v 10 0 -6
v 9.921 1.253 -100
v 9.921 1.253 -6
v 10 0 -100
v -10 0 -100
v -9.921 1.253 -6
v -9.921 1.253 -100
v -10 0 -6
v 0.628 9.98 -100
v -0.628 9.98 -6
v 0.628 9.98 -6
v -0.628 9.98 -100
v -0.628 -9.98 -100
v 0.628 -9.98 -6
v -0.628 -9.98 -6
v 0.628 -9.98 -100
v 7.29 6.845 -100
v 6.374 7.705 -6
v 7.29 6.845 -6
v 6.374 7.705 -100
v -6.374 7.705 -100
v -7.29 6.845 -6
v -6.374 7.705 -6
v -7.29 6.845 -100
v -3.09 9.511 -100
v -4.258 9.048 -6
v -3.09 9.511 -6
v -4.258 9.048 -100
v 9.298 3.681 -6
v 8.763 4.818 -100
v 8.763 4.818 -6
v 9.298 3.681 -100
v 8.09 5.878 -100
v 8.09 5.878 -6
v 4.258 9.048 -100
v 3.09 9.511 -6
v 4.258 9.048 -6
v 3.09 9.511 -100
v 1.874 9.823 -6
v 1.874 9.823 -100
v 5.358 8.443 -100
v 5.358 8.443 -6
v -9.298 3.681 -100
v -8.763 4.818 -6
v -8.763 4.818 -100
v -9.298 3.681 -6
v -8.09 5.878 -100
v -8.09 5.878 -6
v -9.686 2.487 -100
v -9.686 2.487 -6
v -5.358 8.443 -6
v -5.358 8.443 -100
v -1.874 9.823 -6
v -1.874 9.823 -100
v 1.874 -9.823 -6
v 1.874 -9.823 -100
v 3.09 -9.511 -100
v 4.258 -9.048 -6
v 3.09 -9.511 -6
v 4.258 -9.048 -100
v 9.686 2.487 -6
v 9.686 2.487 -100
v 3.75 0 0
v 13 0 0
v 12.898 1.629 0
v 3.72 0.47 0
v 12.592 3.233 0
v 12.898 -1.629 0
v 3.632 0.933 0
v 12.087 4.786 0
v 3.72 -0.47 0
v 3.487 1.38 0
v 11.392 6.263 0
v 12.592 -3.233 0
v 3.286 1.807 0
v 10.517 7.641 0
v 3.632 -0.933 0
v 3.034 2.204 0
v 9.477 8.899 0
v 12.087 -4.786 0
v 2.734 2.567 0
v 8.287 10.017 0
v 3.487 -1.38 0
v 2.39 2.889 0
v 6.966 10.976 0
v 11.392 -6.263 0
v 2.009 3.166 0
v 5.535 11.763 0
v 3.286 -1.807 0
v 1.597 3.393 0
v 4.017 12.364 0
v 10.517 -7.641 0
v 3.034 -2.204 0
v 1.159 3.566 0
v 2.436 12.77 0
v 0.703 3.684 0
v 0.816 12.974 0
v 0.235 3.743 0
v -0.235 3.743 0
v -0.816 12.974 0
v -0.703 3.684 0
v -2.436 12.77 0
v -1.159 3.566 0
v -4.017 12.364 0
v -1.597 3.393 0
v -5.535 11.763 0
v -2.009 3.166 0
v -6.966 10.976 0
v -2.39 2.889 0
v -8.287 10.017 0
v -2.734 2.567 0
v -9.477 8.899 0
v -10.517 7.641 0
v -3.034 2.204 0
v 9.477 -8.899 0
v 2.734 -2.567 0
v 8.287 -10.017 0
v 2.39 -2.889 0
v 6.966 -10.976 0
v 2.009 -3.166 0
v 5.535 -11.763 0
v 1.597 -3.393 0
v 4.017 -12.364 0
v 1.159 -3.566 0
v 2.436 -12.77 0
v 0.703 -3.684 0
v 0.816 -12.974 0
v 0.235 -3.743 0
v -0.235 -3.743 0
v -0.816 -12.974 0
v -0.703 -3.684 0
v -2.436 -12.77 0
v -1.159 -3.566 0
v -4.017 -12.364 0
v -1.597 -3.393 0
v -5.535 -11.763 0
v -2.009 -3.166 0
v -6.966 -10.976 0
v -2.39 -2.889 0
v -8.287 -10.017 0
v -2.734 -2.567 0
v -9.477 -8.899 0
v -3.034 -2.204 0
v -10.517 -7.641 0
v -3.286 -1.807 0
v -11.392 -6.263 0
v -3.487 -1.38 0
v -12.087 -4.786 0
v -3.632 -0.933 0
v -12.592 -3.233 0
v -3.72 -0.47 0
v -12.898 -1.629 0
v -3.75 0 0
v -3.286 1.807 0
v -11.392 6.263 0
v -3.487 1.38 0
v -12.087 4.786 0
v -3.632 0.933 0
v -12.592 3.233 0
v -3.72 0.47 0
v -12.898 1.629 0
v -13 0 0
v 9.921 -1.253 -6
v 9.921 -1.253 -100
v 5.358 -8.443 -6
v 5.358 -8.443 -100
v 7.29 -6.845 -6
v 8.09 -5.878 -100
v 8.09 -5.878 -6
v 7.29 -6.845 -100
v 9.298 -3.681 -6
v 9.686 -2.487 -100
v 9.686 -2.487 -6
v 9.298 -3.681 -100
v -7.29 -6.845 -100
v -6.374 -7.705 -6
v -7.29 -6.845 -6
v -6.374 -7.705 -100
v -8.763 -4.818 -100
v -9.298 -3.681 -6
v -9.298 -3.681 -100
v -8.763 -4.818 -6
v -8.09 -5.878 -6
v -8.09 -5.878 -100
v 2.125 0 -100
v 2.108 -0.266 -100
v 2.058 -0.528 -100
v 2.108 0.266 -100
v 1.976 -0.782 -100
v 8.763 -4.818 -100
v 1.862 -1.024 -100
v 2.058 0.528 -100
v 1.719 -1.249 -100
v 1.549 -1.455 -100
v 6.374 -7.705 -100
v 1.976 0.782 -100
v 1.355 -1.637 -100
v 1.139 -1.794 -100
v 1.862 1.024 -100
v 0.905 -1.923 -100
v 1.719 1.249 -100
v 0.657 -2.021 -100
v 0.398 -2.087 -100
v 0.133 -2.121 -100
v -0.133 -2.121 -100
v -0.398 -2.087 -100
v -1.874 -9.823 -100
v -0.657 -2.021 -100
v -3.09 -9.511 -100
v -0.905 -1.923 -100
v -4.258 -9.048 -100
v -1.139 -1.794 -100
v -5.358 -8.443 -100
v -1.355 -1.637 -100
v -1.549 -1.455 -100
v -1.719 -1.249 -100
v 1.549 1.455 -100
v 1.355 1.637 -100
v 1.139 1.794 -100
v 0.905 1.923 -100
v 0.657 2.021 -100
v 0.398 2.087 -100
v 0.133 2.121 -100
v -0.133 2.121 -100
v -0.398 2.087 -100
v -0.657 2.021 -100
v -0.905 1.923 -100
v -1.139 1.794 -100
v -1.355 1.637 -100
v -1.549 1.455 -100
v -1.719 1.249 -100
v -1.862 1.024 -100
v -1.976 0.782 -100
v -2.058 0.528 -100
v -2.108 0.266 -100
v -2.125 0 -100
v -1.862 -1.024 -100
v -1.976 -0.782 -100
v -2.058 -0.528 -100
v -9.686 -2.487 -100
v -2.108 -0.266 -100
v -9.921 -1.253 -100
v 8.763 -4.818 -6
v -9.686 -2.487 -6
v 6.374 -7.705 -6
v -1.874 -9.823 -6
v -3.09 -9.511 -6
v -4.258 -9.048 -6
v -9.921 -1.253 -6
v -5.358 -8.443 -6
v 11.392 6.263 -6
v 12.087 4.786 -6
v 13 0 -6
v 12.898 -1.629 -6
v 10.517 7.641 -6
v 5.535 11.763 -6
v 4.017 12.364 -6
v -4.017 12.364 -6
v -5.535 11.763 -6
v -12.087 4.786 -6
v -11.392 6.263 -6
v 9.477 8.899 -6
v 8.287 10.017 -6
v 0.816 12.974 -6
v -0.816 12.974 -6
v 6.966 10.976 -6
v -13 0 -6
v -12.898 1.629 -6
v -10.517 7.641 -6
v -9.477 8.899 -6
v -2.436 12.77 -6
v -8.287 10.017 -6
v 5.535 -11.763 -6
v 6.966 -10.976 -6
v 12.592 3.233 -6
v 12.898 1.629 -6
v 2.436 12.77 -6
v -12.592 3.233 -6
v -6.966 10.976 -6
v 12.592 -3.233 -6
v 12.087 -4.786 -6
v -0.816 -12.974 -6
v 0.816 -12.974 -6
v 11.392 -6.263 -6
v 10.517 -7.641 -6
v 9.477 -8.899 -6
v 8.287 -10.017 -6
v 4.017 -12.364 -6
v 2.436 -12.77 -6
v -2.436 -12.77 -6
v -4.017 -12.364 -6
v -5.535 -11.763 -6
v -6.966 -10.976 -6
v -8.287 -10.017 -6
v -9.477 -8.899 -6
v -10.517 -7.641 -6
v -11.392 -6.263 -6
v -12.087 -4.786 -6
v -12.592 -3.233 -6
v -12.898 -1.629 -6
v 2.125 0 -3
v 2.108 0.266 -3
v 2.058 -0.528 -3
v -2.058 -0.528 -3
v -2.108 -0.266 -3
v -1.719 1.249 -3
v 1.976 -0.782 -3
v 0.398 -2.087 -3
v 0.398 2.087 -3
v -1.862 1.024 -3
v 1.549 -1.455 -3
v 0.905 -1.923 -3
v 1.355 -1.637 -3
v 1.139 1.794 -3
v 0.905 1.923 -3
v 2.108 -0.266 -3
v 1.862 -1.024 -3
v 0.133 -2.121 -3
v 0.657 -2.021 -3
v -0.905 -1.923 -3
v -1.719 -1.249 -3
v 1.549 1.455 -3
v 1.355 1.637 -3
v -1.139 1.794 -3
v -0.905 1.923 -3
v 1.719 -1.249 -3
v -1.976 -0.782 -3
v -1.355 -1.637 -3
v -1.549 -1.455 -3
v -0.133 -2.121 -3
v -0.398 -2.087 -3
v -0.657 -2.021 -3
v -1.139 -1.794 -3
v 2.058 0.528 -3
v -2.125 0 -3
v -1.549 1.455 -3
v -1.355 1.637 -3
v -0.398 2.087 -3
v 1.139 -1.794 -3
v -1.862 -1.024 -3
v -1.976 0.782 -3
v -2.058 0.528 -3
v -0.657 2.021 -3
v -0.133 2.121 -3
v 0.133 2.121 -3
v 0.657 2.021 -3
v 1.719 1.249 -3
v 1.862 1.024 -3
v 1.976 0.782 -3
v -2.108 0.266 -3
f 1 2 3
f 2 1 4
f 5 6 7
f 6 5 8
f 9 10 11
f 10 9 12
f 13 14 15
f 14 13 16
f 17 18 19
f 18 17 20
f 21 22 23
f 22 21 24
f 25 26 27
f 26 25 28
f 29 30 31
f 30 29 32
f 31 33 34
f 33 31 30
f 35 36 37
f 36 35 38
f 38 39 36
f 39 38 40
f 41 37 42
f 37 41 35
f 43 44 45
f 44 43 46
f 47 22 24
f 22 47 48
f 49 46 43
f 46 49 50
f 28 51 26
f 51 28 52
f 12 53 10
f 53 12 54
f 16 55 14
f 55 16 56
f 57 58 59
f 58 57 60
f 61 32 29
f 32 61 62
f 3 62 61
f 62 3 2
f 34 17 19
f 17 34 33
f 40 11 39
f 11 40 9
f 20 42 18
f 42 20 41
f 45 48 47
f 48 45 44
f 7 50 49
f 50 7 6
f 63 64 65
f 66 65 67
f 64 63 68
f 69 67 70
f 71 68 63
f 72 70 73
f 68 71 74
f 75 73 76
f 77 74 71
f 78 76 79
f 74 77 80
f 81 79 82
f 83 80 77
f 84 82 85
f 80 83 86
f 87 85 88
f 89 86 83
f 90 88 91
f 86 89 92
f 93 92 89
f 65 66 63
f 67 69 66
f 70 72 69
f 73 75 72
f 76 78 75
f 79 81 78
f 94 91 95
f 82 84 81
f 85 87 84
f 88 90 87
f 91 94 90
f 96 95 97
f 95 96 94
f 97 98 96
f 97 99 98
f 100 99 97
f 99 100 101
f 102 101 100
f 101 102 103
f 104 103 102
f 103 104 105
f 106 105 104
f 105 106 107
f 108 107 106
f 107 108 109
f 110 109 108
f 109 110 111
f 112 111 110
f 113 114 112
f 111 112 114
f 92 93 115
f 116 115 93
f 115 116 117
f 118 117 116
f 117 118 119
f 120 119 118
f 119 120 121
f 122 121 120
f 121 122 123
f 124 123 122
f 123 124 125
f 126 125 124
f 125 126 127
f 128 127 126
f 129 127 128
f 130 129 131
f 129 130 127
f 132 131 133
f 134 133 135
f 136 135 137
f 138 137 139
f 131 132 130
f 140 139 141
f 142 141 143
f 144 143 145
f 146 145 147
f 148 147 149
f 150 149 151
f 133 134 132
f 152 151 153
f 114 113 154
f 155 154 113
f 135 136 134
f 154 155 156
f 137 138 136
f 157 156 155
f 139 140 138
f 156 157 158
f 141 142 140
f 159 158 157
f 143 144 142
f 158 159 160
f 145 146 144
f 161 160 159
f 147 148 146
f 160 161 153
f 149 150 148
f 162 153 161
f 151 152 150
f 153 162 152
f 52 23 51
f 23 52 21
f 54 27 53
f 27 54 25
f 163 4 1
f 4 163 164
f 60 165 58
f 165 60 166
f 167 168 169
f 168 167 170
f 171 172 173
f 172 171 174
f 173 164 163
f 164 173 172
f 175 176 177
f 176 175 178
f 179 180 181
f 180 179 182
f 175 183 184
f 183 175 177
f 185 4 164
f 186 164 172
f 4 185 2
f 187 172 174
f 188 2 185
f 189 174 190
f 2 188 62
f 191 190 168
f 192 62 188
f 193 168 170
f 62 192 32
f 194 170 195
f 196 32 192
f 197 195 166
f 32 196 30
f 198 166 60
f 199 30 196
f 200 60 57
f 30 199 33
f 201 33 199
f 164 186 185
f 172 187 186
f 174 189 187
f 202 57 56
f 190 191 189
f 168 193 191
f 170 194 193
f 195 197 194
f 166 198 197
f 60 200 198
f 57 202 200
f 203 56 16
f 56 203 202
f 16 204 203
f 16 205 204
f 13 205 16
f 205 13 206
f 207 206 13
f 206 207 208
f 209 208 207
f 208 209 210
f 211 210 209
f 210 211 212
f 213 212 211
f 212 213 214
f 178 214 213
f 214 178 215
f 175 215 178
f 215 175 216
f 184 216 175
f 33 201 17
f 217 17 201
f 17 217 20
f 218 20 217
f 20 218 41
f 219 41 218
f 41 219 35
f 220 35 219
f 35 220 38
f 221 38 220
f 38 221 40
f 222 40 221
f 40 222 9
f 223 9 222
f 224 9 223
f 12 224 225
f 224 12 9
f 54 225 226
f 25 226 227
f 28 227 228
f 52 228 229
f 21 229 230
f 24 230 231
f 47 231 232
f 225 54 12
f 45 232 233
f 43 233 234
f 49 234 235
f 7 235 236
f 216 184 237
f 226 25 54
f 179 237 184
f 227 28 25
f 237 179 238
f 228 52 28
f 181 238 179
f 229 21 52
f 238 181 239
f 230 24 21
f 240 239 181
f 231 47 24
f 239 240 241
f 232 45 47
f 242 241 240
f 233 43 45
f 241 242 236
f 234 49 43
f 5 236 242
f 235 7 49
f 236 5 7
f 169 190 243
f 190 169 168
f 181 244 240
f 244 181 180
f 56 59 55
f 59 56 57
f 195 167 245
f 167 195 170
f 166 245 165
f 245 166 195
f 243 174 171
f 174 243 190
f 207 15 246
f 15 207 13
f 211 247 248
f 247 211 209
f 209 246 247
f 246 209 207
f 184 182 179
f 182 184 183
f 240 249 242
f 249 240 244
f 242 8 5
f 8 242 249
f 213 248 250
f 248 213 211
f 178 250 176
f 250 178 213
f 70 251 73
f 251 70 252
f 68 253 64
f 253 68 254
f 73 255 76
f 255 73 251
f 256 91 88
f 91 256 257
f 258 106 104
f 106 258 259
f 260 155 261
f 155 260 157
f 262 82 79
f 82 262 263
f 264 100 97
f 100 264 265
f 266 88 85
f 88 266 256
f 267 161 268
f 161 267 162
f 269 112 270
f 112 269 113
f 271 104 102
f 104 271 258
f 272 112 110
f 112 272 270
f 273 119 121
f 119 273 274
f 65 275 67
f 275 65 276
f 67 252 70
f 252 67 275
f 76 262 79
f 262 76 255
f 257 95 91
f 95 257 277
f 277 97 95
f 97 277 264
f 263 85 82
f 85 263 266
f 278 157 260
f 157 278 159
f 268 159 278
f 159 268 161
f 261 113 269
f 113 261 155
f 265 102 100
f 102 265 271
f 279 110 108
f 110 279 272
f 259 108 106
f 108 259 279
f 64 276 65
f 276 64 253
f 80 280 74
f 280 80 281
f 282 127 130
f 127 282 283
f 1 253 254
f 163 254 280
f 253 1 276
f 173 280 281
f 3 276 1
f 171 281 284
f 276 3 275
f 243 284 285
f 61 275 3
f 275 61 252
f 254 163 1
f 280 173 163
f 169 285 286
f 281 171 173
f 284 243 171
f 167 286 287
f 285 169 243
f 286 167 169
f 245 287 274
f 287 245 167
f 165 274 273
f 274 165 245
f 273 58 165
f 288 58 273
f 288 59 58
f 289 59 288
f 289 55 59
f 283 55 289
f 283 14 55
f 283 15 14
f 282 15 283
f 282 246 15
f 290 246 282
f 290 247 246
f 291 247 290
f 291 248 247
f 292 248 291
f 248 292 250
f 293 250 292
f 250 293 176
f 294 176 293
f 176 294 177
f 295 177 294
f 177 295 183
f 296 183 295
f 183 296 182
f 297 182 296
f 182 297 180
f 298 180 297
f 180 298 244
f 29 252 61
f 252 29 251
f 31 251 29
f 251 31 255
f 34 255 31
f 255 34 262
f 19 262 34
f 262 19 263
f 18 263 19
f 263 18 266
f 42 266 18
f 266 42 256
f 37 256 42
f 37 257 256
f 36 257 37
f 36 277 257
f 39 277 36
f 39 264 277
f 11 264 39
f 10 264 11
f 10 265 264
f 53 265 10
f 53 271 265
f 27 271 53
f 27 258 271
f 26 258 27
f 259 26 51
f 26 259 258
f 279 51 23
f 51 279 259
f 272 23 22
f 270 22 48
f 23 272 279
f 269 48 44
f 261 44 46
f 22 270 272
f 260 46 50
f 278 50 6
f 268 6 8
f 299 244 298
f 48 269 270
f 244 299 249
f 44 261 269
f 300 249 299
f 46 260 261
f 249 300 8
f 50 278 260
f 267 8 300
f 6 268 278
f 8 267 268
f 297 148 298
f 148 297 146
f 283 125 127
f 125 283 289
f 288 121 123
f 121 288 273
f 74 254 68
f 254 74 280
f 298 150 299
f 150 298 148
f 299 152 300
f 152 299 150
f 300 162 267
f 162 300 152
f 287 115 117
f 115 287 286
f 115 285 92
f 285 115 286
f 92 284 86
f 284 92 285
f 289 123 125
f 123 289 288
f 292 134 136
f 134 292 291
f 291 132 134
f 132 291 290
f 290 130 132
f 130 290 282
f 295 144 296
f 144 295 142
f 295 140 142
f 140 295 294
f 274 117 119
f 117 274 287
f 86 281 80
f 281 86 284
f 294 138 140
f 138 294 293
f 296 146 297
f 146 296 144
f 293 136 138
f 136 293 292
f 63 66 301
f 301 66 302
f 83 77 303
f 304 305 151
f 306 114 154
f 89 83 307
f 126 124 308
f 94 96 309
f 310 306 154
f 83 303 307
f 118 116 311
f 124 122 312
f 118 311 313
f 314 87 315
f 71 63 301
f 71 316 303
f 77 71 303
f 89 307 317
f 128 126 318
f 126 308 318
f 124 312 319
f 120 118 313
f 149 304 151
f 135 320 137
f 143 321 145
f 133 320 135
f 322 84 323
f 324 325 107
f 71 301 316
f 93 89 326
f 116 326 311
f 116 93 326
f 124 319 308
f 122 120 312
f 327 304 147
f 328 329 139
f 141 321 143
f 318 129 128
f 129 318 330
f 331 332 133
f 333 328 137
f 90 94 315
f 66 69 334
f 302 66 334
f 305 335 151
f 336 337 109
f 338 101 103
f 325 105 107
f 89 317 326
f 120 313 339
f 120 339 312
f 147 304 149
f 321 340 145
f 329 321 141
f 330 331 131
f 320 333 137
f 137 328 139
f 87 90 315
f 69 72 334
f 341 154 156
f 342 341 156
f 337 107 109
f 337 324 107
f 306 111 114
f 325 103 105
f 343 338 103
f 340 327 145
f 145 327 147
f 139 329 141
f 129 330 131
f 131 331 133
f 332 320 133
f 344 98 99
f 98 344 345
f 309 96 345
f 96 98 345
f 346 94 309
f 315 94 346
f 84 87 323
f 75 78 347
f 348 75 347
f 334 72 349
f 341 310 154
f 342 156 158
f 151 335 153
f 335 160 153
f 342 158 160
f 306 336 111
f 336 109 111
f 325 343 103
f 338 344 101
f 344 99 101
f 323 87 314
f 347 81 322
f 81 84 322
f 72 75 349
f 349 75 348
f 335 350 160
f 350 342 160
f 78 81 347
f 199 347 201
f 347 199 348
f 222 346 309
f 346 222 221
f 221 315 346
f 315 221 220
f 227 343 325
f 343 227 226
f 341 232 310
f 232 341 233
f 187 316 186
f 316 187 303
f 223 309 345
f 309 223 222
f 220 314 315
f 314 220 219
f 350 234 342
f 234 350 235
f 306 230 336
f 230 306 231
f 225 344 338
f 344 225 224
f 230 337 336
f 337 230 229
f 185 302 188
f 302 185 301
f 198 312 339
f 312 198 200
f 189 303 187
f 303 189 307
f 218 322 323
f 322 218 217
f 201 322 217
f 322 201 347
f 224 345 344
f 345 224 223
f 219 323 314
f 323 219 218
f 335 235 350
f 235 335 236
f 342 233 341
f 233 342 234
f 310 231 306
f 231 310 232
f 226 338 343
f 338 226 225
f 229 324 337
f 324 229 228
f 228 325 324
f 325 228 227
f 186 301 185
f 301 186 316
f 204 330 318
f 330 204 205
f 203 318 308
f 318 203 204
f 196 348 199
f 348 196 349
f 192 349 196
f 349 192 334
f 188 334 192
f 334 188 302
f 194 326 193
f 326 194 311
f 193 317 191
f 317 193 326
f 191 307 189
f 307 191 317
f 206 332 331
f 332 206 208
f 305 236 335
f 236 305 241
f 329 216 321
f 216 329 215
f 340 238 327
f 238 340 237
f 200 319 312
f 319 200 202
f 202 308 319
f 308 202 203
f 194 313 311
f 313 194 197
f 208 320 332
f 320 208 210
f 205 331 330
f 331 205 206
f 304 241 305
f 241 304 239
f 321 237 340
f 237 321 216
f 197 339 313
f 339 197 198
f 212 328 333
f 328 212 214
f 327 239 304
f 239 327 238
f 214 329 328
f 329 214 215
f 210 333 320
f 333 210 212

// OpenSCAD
$fn = 50;


difference() {
	union() {
		translate(v = [0, 0, -100.0000000000]) {
			cylinder(h = 100, r = 10.0000000000);
		}
		translate(v = [0, 0, -6.0000000000]) {
			cylinder(h = 6, r = 13.0000000000);
		}
	}
	union() {
		translate(v = [0, 0, 0]) {
			rotate(a = [0, 0, 0]) {
				difference() {
					union() {
						#translate(v = [0, 0, -100.0000000000]) {
							cylinder(h = 100, r = 2.0000000000);
						}
						#translate(v = [0, 0, -3]) {
							cylinder(h = 3, r1 = 2.1250000000, r2 = 3.7500000000);
						}
						#translate(v = [0, 0, -100.0000000000]) {
							cylinder(h = 100, r = 2.1250000000);
						}
						#translate(v = [0, 0, -100.0000000000]) {
							cylinder(h = 100, r = 2.0000000000);
						}
					}
					union();
				}
			}
		}
	}
}
